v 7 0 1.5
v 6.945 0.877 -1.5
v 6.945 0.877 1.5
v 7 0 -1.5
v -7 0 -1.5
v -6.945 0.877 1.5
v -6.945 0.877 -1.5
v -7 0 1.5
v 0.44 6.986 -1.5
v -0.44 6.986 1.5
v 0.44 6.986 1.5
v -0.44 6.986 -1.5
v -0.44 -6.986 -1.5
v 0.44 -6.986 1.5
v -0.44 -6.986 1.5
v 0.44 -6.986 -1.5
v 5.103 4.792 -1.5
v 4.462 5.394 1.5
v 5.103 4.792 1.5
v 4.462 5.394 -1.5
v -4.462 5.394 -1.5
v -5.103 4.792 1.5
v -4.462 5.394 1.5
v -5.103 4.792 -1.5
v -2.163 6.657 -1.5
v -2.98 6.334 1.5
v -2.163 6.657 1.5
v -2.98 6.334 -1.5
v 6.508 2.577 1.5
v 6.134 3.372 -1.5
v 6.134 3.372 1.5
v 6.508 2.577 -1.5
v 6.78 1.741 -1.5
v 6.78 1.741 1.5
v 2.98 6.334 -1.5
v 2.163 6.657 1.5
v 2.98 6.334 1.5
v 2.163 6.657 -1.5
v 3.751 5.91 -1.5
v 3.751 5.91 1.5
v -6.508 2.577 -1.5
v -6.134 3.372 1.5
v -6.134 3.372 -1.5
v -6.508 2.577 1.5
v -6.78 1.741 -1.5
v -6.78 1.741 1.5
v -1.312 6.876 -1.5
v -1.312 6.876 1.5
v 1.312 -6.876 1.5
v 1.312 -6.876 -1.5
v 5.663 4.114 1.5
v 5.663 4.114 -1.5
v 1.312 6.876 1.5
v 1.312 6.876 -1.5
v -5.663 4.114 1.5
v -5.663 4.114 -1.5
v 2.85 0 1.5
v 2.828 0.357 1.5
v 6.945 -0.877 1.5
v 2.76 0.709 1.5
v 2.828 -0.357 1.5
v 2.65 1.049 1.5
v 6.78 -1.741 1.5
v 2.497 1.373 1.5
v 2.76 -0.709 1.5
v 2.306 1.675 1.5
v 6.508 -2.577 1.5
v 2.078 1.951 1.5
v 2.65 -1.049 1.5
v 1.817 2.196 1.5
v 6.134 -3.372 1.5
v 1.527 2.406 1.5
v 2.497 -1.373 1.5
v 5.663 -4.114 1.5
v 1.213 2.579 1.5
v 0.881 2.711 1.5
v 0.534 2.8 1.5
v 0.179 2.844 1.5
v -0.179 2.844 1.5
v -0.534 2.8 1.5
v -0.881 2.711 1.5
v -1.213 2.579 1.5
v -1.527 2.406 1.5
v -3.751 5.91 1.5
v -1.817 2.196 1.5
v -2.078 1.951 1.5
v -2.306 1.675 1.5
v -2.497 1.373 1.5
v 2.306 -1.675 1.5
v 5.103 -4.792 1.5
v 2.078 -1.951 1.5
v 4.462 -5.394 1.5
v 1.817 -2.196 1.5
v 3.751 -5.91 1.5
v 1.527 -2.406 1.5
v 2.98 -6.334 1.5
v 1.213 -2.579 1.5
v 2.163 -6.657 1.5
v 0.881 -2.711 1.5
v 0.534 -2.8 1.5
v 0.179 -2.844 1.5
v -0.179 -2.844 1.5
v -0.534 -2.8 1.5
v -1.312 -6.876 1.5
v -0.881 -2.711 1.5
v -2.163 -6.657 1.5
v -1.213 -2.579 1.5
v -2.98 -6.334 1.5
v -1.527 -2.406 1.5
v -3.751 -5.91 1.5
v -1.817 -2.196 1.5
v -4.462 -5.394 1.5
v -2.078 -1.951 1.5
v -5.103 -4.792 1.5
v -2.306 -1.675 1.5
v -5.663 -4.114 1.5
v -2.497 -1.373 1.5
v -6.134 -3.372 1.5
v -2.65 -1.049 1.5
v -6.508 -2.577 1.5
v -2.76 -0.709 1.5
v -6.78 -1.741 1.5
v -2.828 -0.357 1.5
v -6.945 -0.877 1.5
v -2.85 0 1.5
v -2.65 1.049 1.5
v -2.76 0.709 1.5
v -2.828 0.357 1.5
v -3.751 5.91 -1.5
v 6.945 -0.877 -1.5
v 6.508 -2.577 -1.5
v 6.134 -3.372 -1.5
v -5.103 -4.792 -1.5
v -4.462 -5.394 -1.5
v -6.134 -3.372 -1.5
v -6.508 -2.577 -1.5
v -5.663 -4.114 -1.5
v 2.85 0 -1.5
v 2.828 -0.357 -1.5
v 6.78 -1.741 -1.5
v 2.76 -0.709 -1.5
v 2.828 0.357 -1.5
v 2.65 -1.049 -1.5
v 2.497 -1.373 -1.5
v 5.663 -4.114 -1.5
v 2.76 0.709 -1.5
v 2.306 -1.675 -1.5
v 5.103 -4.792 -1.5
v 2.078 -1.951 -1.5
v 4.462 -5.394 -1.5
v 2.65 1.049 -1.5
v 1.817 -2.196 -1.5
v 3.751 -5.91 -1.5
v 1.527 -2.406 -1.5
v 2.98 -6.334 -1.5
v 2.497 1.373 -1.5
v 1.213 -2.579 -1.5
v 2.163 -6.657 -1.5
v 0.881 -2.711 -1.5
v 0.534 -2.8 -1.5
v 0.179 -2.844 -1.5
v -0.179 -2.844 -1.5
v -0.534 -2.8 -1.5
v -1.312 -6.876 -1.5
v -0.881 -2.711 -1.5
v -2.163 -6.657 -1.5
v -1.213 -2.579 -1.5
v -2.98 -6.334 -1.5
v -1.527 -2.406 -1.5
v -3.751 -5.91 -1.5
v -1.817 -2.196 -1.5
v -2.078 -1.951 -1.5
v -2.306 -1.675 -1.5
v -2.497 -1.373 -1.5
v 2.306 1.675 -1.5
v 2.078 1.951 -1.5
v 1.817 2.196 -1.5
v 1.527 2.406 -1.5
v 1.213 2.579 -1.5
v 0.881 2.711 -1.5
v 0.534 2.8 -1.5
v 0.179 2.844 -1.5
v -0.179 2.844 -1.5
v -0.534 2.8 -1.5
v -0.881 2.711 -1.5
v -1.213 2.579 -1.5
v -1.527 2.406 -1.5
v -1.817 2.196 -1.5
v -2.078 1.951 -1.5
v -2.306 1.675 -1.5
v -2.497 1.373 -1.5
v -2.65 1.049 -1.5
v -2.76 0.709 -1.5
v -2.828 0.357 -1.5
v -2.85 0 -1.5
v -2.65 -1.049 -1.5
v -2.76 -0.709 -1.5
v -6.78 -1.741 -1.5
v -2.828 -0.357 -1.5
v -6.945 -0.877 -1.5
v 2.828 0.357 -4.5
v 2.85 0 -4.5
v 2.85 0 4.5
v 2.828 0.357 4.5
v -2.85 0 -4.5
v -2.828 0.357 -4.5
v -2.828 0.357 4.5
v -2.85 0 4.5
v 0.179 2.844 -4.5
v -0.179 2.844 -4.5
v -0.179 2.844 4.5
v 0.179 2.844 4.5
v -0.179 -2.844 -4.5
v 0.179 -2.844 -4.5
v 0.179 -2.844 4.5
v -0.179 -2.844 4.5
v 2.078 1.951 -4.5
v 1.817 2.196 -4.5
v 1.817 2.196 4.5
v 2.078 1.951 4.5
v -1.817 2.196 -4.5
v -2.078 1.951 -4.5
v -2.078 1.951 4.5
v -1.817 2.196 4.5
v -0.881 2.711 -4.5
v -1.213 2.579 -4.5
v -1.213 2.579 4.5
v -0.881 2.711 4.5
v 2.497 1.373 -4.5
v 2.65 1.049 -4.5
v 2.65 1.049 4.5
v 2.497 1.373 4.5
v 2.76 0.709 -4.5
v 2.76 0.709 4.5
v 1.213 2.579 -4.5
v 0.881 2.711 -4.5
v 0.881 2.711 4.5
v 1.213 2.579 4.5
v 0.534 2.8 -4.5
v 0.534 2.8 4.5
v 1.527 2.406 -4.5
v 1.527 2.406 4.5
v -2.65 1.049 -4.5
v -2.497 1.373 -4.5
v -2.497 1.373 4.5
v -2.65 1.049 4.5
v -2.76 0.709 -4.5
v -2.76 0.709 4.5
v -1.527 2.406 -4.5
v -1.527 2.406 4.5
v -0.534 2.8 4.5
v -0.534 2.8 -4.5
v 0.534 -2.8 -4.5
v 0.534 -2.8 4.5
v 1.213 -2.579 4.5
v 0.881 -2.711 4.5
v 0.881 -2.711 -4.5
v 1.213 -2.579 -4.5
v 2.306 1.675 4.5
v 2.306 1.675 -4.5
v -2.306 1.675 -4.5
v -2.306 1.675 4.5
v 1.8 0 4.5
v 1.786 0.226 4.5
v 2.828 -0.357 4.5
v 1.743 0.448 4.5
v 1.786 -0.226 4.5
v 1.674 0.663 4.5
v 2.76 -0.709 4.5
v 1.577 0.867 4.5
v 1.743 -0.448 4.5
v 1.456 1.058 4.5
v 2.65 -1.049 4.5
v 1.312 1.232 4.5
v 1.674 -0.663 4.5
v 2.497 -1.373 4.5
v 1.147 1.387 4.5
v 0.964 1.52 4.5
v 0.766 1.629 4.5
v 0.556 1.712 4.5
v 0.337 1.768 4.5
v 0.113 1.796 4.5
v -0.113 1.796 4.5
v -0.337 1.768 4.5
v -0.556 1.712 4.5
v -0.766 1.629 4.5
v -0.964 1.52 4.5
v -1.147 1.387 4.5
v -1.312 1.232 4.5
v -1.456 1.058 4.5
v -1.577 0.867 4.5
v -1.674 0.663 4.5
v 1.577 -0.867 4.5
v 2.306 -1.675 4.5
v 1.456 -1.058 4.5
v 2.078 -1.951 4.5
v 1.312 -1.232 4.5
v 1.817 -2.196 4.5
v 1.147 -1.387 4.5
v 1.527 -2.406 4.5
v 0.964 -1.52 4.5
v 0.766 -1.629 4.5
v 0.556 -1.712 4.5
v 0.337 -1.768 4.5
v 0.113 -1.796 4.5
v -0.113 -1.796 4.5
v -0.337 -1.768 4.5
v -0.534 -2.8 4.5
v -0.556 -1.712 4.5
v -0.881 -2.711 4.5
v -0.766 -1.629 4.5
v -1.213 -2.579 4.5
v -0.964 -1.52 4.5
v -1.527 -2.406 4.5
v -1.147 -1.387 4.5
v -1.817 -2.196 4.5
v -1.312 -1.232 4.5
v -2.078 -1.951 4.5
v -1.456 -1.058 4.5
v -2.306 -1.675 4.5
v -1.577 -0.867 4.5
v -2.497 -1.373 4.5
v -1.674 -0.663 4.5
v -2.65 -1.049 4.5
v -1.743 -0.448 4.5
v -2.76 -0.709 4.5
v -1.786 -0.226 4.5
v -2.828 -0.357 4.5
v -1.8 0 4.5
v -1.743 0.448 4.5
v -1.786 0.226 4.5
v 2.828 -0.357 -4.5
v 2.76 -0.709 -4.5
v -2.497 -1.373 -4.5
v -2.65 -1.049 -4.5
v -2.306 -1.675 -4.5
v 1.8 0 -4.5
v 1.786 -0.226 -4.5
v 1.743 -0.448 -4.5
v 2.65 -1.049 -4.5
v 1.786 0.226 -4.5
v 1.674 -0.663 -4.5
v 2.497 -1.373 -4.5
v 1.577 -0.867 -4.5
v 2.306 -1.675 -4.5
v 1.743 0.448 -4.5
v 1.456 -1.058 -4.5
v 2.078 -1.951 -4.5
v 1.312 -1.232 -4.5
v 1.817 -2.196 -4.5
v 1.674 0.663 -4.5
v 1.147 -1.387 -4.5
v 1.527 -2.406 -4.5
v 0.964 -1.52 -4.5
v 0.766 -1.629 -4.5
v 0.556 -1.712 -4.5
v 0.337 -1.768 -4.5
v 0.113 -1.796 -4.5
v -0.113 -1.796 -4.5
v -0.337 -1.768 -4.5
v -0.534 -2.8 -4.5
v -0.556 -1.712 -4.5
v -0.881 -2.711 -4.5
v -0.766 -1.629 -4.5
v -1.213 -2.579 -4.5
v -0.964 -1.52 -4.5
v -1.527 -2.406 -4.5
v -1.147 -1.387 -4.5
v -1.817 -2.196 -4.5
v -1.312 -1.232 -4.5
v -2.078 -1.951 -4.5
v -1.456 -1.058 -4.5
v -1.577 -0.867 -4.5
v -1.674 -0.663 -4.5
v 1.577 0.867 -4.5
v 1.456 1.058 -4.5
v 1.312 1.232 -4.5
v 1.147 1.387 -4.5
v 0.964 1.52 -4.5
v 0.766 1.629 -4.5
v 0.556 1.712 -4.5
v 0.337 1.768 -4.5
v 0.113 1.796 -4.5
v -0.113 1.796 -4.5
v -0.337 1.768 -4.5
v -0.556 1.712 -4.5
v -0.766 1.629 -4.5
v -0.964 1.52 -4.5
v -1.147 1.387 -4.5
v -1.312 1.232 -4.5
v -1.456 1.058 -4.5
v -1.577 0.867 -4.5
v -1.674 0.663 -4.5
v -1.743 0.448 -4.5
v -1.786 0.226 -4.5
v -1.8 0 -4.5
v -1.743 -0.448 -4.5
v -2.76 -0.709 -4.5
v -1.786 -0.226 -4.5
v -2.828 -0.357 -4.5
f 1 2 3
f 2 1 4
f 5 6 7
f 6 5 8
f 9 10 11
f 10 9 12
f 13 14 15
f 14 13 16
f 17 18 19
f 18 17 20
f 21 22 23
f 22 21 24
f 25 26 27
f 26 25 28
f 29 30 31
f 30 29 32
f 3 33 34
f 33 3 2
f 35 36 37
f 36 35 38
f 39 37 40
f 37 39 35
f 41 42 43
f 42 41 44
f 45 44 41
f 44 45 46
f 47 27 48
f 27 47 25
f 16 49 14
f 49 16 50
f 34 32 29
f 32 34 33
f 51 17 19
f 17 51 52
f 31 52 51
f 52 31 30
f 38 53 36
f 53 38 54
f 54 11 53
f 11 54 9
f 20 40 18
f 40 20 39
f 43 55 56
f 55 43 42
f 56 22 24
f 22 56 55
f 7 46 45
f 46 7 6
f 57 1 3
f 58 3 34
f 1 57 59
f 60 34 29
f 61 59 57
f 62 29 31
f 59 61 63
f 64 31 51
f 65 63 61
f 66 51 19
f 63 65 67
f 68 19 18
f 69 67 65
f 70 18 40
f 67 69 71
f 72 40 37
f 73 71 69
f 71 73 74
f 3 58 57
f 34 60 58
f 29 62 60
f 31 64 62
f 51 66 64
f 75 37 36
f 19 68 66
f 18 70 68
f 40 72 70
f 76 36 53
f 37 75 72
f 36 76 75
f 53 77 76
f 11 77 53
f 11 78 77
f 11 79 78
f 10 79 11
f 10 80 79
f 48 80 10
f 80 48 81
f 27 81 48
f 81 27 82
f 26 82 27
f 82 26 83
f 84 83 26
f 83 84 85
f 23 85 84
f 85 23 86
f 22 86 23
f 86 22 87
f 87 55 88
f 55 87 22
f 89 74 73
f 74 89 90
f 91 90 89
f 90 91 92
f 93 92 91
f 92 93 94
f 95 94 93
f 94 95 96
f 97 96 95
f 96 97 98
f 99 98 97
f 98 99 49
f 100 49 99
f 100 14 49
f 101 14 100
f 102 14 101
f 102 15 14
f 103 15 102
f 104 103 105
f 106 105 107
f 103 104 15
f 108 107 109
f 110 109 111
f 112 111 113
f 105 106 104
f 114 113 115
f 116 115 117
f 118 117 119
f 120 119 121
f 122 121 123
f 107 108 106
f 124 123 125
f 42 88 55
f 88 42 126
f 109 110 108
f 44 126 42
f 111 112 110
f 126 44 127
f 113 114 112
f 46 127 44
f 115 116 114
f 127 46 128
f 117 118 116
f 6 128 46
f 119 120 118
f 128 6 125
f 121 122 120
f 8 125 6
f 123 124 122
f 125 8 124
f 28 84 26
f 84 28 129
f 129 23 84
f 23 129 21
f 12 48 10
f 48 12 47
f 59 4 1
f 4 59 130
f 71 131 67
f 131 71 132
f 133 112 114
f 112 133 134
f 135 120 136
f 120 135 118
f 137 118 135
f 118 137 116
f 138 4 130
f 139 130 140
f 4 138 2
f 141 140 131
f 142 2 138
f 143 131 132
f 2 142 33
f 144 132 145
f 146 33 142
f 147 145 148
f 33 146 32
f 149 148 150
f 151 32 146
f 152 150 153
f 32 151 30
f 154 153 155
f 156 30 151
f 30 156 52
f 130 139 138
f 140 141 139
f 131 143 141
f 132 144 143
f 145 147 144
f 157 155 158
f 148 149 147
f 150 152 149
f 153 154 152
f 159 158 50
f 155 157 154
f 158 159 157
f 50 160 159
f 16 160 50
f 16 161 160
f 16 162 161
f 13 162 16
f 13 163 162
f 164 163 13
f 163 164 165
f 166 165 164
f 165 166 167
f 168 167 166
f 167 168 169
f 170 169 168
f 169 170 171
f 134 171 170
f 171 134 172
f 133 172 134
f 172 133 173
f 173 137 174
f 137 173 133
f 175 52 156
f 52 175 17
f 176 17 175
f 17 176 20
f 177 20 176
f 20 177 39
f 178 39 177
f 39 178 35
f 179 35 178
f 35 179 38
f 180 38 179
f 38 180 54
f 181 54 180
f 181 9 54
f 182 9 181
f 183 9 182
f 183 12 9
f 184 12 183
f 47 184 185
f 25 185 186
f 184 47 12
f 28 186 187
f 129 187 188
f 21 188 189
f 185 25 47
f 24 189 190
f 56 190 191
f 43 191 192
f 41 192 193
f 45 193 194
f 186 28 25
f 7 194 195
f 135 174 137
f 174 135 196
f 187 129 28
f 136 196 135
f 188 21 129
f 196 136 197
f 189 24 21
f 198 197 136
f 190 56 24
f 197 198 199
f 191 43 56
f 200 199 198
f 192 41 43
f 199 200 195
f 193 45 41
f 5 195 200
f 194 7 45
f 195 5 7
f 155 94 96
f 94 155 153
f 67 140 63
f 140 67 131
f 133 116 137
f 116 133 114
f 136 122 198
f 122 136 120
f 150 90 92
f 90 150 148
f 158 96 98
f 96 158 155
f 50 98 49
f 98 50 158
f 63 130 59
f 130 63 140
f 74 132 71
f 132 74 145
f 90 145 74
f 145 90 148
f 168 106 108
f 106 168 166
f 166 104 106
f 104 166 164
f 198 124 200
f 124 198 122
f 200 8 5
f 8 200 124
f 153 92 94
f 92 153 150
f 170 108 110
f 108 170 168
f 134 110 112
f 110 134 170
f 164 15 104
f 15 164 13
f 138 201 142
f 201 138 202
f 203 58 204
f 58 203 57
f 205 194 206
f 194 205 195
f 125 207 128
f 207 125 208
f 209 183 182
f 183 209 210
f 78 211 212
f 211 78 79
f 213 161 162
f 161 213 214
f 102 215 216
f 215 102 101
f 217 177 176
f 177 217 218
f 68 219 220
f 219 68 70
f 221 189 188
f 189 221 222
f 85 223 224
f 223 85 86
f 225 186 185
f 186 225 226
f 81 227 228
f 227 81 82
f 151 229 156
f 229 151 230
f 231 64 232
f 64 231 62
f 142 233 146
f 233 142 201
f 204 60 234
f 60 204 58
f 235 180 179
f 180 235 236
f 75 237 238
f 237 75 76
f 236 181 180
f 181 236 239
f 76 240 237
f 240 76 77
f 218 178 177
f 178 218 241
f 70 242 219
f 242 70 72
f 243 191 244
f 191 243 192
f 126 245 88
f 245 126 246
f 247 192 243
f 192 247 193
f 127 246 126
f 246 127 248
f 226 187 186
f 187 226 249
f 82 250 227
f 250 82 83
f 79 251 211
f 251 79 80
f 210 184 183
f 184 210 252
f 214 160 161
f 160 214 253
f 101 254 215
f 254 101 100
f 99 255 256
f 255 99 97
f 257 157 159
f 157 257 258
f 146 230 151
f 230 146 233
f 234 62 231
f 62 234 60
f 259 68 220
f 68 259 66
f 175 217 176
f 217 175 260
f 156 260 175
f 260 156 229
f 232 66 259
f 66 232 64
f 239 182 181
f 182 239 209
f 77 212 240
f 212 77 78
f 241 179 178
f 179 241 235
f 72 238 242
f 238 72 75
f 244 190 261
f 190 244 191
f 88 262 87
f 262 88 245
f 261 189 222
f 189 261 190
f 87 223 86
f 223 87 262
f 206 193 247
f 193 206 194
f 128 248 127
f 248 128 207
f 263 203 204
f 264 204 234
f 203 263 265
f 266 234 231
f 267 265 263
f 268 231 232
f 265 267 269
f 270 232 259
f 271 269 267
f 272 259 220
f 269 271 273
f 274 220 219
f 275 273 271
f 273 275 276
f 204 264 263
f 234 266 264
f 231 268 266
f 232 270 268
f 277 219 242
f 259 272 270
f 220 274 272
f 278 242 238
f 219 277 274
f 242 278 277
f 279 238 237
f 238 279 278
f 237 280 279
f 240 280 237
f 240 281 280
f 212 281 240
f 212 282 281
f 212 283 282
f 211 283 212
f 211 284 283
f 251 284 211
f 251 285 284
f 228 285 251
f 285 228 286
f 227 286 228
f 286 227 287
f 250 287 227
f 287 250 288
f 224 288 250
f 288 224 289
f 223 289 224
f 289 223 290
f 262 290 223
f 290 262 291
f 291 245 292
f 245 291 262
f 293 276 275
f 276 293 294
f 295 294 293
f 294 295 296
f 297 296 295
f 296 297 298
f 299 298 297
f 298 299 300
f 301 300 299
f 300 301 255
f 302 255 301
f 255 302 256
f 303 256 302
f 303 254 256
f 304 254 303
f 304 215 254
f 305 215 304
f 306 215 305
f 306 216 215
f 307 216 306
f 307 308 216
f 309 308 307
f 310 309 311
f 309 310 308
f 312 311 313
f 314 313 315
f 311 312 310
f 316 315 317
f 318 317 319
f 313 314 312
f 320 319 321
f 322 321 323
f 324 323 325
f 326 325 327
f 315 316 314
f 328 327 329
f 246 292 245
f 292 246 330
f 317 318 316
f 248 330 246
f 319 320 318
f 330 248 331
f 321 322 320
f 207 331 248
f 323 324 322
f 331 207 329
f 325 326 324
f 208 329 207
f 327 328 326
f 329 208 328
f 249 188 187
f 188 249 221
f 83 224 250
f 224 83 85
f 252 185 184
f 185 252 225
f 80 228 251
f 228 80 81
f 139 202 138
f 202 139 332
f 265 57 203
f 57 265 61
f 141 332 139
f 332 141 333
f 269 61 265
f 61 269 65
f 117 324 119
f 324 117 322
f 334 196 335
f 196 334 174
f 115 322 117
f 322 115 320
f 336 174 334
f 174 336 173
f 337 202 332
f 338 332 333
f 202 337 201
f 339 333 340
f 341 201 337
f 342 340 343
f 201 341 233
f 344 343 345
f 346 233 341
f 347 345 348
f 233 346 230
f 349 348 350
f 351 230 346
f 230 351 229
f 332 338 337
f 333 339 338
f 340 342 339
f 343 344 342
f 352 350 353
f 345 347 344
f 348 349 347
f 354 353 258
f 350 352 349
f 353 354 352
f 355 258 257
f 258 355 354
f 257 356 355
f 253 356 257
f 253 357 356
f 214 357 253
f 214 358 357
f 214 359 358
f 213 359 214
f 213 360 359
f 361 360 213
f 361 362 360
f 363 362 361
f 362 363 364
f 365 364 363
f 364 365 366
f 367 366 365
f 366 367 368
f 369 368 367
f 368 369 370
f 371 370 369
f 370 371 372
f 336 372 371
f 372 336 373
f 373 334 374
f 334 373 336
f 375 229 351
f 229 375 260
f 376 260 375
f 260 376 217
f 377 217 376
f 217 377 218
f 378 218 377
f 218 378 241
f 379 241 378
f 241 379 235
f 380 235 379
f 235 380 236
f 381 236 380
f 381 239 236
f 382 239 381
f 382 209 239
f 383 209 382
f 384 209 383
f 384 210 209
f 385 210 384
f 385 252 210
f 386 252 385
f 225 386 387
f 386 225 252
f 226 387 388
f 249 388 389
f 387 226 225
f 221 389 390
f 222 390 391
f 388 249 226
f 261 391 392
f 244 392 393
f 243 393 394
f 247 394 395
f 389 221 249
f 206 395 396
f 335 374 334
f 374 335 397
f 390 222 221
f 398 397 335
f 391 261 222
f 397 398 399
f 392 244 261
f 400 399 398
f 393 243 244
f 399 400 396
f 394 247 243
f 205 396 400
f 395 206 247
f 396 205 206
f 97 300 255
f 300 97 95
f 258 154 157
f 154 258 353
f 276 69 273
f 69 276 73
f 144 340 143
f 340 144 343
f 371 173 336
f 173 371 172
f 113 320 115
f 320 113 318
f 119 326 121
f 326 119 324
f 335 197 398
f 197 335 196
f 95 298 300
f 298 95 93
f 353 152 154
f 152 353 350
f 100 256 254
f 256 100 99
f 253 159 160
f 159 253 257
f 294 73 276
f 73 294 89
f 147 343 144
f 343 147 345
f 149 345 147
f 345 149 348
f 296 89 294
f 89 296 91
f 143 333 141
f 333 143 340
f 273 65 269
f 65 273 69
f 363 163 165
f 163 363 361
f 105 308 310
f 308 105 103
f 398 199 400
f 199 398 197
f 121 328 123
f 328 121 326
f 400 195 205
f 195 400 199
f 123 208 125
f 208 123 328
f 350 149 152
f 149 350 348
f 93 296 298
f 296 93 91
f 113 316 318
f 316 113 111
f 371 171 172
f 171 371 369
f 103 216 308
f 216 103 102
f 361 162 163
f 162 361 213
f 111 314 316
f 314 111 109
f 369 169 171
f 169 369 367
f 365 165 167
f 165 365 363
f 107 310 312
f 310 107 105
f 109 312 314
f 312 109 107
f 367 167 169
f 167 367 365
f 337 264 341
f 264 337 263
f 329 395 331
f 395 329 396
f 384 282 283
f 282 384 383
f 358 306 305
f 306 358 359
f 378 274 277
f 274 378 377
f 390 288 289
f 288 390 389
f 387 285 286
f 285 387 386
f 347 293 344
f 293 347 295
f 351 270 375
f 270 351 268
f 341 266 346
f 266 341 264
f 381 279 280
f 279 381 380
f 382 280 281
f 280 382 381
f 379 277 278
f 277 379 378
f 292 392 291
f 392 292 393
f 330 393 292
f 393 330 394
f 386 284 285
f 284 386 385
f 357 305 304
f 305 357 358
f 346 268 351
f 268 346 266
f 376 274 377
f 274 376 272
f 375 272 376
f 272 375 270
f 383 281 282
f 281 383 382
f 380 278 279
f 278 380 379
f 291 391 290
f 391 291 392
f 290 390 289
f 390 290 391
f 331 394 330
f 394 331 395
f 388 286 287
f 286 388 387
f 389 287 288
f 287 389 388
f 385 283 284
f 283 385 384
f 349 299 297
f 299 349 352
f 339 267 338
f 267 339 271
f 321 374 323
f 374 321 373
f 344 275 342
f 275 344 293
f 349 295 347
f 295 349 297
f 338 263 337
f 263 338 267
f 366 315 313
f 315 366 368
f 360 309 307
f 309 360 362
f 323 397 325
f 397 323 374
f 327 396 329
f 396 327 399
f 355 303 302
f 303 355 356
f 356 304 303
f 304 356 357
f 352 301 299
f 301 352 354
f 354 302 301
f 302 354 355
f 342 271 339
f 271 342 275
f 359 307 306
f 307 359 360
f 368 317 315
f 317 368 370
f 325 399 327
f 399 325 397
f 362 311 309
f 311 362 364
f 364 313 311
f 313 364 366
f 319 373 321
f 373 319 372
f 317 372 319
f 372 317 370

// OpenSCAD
$fn = 50;


difference() {
	union() {
		translate(v = [0, 0, -1.5000000000]) {
			rotate(a = [0, 0, 0]) {
				cylinder(h = 3, r = 7.0000000000);
			}
		}
		translate(v = [0, 0, -4.5000000000]) {
			rotate(a = [0, 0, 0]) {
				cylinder(h = 9, r = 2.8500000000);
			}
		}
	}
	union() {
		translate(v = [0, 0, -125.0000000000]) {
			rotate(a = [0, 0, 0]) {
				cylinder(h = 250, r = 1.8000000000);
			}
		}
	}
}
